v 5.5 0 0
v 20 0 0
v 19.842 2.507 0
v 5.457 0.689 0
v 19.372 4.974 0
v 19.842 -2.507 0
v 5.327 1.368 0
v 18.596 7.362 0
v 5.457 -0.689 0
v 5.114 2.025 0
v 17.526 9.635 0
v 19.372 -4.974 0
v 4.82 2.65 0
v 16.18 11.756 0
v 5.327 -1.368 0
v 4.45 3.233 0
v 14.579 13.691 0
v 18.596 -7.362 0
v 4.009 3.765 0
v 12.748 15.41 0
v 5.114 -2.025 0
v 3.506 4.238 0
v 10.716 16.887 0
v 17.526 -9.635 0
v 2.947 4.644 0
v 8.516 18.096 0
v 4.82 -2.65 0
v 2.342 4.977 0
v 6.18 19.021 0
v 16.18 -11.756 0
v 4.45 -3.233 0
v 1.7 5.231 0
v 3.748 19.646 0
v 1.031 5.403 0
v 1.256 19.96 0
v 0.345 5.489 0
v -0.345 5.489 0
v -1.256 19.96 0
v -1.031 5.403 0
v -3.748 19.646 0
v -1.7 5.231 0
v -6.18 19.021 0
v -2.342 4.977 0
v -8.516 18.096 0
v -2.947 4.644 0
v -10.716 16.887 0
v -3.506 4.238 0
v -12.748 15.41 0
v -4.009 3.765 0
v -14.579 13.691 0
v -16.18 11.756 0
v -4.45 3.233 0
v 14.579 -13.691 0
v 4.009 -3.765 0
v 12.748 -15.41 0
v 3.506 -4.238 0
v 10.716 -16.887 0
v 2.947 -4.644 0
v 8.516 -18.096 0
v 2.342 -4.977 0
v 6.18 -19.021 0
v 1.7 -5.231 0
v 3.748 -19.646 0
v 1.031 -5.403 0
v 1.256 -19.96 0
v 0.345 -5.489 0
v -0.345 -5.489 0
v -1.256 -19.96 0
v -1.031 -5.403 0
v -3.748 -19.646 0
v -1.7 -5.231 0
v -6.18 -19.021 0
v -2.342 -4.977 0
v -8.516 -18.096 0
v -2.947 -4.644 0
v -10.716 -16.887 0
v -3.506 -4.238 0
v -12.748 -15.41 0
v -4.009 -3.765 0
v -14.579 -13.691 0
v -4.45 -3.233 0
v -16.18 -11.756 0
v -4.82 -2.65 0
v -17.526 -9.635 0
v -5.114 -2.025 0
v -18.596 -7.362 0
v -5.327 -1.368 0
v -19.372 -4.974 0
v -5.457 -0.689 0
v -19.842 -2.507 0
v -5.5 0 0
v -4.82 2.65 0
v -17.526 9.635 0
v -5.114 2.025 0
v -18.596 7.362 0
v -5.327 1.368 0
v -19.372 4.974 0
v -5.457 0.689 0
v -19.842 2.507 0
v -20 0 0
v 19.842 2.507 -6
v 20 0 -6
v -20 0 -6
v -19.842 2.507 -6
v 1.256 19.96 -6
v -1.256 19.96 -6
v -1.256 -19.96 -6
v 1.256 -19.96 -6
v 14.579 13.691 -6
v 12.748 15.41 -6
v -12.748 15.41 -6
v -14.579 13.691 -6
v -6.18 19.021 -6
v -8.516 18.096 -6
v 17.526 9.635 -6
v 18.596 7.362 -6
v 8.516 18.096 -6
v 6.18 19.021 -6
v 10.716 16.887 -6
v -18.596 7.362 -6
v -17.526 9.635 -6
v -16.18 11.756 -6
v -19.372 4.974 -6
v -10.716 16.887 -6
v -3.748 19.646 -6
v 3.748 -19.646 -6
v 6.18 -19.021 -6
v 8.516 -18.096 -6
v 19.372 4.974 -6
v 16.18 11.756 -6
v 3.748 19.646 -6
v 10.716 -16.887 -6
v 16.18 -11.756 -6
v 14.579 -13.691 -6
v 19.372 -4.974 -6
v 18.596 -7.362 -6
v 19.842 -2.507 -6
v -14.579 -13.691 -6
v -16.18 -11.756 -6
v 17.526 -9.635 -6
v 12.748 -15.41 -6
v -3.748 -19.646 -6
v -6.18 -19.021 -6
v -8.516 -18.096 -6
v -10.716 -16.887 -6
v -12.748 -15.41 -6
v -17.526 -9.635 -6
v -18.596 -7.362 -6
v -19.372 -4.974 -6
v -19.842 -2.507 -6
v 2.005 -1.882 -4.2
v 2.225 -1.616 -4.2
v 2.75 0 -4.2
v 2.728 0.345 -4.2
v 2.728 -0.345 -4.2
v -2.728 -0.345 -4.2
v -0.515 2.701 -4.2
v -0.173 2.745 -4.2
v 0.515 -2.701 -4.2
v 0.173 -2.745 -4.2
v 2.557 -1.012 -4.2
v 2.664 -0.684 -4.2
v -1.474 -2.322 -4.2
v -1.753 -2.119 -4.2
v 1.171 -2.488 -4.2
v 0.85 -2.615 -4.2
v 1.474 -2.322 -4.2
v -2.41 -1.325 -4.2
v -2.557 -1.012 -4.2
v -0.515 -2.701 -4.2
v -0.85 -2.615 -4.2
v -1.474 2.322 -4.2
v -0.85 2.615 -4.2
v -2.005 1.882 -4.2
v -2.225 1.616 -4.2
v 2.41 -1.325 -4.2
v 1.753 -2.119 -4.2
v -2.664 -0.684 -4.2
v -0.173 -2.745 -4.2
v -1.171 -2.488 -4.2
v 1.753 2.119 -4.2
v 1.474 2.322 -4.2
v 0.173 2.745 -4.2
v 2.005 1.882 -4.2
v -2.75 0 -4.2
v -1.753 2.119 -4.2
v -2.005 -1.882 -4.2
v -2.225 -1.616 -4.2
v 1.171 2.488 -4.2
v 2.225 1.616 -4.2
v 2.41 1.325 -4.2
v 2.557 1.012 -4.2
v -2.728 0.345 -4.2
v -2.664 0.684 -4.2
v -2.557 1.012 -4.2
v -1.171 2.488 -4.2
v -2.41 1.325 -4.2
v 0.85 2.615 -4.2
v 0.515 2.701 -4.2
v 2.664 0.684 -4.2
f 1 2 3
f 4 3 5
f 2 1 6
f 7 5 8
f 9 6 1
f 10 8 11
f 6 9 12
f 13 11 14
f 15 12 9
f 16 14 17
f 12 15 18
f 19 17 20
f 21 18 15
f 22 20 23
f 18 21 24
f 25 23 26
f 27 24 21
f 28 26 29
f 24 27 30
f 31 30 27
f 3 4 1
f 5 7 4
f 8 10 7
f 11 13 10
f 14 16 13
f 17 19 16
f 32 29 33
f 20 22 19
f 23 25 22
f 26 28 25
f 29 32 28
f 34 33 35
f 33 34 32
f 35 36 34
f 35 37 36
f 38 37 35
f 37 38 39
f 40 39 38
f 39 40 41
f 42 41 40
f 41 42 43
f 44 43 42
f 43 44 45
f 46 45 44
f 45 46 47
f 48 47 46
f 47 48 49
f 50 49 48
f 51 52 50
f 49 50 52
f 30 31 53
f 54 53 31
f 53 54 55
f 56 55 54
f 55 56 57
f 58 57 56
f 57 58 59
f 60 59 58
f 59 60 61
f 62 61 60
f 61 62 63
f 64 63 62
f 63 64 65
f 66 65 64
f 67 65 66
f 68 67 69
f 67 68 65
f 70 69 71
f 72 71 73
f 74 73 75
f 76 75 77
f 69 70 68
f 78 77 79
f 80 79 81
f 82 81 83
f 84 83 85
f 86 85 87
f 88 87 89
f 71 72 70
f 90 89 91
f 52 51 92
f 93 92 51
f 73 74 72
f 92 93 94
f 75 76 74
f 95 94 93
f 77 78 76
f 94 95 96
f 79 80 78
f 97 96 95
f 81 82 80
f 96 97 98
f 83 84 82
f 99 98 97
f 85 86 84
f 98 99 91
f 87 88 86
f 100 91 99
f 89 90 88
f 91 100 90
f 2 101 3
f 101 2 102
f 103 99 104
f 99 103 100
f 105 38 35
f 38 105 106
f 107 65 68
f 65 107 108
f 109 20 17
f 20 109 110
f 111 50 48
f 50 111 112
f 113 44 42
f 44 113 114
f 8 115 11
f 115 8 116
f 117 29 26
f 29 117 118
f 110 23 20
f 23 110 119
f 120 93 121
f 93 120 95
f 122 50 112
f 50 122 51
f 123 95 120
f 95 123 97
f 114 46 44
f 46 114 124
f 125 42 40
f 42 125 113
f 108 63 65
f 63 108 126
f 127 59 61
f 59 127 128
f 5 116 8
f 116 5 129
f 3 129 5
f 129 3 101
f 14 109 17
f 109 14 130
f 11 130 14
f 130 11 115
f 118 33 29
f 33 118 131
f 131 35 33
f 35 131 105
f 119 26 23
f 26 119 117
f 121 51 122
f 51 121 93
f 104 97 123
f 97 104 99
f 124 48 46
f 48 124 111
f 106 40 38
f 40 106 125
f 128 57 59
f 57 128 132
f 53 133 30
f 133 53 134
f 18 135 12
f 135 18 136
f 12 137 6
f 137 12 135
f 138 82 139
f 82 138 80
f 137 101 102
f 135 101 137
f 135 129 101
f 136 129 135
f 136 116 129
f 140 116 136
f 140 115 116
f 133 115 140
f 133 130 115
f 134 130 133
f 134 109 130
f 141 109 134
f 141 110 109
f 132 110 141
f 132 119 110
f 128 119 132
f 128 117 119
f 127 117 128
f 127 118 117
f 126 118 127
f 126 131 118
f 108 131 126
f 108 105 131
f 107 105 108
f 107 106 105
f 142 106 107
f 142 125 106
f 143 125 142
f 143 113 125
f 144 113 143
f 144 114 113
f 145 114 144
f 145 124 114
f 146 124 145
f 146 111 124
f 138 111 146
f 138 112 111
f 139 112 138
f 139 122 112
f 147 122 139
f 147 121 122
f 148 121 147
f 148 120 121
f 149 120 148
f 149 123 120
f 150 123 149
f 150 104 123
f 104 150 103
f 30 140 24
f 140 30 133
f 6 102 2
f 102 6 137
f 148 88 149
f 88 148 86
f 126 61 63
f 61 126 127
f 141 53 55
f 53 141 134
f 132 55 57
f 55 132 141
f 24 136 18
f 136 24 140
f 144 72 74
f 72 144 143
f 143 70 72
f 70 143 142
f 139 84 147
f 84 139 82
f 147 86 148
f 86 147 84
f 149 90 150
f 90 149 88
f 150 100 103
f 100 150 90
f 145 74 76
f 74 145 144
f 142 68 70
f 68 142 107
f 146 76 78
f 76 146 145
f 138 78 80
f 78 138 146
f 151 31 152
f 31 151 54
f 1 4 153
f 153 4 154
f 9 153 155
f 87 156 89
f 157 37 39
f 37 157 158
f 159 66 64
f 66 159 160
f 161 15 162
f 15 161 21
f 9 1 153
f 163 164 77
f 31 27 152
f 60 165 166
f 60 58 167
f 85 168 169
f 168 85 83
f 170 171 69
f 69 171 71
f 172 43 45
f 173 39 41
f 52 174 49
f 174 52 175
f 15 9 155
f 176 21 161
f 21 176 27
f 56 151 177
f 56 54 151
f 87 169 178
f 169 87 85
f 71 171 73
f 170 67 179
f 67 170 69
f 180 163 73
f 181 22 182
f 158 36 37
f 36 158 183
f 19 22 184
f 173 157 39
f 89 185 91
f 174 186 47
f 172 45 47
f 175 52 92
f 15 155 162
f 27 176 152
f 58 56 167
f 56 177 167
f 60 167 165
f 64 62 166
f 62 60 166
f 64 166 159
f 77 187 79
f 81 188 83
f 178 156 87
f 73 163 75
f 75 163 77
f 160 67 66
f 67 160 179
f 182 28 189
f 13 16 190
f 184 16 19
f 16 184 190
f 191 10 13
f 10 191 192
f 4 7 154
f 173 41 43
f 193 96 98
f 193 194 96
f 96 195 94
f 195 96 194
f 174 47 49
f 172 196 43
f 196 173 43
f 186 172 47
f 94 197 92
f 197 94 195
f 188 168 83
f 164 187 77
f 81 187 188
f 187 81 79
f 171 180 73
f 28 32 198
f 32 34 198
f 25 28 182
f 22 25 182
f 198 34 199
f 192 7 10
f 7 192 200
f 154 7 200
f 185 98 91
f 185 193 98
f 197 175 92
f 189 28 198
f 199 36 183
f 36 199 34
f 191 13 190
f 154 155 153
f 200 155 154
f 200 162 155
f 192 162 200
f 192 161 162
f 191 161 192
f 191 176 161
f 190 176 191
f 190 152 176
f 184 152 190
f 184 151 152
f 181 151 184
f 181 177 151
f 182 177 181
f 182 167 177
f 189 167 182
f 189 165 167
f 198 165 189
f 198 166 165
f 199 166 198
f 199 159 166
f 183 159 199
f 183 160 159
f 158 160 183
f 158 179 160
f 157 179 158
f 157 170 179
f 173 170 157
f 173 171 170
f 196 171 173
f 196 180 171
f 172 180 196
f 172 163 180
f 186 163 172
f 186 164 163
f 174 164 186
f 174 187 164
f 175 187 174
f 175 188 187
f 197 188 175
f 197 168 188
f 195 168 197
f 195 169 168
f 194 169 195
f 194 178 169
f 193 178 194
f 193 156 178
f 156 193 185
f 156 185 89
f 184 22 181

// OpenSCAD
$fn = 50;


difference() {
	union() {
		translate(v = [0, 0, -3.0000000000]) {
			cylinder(h = 3, r = 10.0000000000);
		}
		translate(v = [0, 0, -6.0000000000]) {
			cylinder(h = 6, r = 20.0000000000);
		}
	}
	union() {
		translate(v = [0, 0, 0]) {
			rotate(a = [0, 0, 0]) {
				difference() {
					union() {
						#translate(v = [0, 0, -3.0000000000]) {
							cylinder(h = 3, r = 2.2500000000);
						}
						#translate(v = [0, 0, -4.2000000000]) {
							cylinder(h = 4.2000000000, r = 10.0000000000, r1 = 2.7500000000, r2 = 5.5000000000);
						}
						#translate(v = [0, 0, -3.0000000000]) {
							cylinder(h = 3, r = 2.7500000000);
						}
						#translate(v = [0, 0, -3.0000000000]) {
							cylinder(h = 3, r = 2.2500000000);
						}
					}
					union();
				}
			}
		}
	}
}
